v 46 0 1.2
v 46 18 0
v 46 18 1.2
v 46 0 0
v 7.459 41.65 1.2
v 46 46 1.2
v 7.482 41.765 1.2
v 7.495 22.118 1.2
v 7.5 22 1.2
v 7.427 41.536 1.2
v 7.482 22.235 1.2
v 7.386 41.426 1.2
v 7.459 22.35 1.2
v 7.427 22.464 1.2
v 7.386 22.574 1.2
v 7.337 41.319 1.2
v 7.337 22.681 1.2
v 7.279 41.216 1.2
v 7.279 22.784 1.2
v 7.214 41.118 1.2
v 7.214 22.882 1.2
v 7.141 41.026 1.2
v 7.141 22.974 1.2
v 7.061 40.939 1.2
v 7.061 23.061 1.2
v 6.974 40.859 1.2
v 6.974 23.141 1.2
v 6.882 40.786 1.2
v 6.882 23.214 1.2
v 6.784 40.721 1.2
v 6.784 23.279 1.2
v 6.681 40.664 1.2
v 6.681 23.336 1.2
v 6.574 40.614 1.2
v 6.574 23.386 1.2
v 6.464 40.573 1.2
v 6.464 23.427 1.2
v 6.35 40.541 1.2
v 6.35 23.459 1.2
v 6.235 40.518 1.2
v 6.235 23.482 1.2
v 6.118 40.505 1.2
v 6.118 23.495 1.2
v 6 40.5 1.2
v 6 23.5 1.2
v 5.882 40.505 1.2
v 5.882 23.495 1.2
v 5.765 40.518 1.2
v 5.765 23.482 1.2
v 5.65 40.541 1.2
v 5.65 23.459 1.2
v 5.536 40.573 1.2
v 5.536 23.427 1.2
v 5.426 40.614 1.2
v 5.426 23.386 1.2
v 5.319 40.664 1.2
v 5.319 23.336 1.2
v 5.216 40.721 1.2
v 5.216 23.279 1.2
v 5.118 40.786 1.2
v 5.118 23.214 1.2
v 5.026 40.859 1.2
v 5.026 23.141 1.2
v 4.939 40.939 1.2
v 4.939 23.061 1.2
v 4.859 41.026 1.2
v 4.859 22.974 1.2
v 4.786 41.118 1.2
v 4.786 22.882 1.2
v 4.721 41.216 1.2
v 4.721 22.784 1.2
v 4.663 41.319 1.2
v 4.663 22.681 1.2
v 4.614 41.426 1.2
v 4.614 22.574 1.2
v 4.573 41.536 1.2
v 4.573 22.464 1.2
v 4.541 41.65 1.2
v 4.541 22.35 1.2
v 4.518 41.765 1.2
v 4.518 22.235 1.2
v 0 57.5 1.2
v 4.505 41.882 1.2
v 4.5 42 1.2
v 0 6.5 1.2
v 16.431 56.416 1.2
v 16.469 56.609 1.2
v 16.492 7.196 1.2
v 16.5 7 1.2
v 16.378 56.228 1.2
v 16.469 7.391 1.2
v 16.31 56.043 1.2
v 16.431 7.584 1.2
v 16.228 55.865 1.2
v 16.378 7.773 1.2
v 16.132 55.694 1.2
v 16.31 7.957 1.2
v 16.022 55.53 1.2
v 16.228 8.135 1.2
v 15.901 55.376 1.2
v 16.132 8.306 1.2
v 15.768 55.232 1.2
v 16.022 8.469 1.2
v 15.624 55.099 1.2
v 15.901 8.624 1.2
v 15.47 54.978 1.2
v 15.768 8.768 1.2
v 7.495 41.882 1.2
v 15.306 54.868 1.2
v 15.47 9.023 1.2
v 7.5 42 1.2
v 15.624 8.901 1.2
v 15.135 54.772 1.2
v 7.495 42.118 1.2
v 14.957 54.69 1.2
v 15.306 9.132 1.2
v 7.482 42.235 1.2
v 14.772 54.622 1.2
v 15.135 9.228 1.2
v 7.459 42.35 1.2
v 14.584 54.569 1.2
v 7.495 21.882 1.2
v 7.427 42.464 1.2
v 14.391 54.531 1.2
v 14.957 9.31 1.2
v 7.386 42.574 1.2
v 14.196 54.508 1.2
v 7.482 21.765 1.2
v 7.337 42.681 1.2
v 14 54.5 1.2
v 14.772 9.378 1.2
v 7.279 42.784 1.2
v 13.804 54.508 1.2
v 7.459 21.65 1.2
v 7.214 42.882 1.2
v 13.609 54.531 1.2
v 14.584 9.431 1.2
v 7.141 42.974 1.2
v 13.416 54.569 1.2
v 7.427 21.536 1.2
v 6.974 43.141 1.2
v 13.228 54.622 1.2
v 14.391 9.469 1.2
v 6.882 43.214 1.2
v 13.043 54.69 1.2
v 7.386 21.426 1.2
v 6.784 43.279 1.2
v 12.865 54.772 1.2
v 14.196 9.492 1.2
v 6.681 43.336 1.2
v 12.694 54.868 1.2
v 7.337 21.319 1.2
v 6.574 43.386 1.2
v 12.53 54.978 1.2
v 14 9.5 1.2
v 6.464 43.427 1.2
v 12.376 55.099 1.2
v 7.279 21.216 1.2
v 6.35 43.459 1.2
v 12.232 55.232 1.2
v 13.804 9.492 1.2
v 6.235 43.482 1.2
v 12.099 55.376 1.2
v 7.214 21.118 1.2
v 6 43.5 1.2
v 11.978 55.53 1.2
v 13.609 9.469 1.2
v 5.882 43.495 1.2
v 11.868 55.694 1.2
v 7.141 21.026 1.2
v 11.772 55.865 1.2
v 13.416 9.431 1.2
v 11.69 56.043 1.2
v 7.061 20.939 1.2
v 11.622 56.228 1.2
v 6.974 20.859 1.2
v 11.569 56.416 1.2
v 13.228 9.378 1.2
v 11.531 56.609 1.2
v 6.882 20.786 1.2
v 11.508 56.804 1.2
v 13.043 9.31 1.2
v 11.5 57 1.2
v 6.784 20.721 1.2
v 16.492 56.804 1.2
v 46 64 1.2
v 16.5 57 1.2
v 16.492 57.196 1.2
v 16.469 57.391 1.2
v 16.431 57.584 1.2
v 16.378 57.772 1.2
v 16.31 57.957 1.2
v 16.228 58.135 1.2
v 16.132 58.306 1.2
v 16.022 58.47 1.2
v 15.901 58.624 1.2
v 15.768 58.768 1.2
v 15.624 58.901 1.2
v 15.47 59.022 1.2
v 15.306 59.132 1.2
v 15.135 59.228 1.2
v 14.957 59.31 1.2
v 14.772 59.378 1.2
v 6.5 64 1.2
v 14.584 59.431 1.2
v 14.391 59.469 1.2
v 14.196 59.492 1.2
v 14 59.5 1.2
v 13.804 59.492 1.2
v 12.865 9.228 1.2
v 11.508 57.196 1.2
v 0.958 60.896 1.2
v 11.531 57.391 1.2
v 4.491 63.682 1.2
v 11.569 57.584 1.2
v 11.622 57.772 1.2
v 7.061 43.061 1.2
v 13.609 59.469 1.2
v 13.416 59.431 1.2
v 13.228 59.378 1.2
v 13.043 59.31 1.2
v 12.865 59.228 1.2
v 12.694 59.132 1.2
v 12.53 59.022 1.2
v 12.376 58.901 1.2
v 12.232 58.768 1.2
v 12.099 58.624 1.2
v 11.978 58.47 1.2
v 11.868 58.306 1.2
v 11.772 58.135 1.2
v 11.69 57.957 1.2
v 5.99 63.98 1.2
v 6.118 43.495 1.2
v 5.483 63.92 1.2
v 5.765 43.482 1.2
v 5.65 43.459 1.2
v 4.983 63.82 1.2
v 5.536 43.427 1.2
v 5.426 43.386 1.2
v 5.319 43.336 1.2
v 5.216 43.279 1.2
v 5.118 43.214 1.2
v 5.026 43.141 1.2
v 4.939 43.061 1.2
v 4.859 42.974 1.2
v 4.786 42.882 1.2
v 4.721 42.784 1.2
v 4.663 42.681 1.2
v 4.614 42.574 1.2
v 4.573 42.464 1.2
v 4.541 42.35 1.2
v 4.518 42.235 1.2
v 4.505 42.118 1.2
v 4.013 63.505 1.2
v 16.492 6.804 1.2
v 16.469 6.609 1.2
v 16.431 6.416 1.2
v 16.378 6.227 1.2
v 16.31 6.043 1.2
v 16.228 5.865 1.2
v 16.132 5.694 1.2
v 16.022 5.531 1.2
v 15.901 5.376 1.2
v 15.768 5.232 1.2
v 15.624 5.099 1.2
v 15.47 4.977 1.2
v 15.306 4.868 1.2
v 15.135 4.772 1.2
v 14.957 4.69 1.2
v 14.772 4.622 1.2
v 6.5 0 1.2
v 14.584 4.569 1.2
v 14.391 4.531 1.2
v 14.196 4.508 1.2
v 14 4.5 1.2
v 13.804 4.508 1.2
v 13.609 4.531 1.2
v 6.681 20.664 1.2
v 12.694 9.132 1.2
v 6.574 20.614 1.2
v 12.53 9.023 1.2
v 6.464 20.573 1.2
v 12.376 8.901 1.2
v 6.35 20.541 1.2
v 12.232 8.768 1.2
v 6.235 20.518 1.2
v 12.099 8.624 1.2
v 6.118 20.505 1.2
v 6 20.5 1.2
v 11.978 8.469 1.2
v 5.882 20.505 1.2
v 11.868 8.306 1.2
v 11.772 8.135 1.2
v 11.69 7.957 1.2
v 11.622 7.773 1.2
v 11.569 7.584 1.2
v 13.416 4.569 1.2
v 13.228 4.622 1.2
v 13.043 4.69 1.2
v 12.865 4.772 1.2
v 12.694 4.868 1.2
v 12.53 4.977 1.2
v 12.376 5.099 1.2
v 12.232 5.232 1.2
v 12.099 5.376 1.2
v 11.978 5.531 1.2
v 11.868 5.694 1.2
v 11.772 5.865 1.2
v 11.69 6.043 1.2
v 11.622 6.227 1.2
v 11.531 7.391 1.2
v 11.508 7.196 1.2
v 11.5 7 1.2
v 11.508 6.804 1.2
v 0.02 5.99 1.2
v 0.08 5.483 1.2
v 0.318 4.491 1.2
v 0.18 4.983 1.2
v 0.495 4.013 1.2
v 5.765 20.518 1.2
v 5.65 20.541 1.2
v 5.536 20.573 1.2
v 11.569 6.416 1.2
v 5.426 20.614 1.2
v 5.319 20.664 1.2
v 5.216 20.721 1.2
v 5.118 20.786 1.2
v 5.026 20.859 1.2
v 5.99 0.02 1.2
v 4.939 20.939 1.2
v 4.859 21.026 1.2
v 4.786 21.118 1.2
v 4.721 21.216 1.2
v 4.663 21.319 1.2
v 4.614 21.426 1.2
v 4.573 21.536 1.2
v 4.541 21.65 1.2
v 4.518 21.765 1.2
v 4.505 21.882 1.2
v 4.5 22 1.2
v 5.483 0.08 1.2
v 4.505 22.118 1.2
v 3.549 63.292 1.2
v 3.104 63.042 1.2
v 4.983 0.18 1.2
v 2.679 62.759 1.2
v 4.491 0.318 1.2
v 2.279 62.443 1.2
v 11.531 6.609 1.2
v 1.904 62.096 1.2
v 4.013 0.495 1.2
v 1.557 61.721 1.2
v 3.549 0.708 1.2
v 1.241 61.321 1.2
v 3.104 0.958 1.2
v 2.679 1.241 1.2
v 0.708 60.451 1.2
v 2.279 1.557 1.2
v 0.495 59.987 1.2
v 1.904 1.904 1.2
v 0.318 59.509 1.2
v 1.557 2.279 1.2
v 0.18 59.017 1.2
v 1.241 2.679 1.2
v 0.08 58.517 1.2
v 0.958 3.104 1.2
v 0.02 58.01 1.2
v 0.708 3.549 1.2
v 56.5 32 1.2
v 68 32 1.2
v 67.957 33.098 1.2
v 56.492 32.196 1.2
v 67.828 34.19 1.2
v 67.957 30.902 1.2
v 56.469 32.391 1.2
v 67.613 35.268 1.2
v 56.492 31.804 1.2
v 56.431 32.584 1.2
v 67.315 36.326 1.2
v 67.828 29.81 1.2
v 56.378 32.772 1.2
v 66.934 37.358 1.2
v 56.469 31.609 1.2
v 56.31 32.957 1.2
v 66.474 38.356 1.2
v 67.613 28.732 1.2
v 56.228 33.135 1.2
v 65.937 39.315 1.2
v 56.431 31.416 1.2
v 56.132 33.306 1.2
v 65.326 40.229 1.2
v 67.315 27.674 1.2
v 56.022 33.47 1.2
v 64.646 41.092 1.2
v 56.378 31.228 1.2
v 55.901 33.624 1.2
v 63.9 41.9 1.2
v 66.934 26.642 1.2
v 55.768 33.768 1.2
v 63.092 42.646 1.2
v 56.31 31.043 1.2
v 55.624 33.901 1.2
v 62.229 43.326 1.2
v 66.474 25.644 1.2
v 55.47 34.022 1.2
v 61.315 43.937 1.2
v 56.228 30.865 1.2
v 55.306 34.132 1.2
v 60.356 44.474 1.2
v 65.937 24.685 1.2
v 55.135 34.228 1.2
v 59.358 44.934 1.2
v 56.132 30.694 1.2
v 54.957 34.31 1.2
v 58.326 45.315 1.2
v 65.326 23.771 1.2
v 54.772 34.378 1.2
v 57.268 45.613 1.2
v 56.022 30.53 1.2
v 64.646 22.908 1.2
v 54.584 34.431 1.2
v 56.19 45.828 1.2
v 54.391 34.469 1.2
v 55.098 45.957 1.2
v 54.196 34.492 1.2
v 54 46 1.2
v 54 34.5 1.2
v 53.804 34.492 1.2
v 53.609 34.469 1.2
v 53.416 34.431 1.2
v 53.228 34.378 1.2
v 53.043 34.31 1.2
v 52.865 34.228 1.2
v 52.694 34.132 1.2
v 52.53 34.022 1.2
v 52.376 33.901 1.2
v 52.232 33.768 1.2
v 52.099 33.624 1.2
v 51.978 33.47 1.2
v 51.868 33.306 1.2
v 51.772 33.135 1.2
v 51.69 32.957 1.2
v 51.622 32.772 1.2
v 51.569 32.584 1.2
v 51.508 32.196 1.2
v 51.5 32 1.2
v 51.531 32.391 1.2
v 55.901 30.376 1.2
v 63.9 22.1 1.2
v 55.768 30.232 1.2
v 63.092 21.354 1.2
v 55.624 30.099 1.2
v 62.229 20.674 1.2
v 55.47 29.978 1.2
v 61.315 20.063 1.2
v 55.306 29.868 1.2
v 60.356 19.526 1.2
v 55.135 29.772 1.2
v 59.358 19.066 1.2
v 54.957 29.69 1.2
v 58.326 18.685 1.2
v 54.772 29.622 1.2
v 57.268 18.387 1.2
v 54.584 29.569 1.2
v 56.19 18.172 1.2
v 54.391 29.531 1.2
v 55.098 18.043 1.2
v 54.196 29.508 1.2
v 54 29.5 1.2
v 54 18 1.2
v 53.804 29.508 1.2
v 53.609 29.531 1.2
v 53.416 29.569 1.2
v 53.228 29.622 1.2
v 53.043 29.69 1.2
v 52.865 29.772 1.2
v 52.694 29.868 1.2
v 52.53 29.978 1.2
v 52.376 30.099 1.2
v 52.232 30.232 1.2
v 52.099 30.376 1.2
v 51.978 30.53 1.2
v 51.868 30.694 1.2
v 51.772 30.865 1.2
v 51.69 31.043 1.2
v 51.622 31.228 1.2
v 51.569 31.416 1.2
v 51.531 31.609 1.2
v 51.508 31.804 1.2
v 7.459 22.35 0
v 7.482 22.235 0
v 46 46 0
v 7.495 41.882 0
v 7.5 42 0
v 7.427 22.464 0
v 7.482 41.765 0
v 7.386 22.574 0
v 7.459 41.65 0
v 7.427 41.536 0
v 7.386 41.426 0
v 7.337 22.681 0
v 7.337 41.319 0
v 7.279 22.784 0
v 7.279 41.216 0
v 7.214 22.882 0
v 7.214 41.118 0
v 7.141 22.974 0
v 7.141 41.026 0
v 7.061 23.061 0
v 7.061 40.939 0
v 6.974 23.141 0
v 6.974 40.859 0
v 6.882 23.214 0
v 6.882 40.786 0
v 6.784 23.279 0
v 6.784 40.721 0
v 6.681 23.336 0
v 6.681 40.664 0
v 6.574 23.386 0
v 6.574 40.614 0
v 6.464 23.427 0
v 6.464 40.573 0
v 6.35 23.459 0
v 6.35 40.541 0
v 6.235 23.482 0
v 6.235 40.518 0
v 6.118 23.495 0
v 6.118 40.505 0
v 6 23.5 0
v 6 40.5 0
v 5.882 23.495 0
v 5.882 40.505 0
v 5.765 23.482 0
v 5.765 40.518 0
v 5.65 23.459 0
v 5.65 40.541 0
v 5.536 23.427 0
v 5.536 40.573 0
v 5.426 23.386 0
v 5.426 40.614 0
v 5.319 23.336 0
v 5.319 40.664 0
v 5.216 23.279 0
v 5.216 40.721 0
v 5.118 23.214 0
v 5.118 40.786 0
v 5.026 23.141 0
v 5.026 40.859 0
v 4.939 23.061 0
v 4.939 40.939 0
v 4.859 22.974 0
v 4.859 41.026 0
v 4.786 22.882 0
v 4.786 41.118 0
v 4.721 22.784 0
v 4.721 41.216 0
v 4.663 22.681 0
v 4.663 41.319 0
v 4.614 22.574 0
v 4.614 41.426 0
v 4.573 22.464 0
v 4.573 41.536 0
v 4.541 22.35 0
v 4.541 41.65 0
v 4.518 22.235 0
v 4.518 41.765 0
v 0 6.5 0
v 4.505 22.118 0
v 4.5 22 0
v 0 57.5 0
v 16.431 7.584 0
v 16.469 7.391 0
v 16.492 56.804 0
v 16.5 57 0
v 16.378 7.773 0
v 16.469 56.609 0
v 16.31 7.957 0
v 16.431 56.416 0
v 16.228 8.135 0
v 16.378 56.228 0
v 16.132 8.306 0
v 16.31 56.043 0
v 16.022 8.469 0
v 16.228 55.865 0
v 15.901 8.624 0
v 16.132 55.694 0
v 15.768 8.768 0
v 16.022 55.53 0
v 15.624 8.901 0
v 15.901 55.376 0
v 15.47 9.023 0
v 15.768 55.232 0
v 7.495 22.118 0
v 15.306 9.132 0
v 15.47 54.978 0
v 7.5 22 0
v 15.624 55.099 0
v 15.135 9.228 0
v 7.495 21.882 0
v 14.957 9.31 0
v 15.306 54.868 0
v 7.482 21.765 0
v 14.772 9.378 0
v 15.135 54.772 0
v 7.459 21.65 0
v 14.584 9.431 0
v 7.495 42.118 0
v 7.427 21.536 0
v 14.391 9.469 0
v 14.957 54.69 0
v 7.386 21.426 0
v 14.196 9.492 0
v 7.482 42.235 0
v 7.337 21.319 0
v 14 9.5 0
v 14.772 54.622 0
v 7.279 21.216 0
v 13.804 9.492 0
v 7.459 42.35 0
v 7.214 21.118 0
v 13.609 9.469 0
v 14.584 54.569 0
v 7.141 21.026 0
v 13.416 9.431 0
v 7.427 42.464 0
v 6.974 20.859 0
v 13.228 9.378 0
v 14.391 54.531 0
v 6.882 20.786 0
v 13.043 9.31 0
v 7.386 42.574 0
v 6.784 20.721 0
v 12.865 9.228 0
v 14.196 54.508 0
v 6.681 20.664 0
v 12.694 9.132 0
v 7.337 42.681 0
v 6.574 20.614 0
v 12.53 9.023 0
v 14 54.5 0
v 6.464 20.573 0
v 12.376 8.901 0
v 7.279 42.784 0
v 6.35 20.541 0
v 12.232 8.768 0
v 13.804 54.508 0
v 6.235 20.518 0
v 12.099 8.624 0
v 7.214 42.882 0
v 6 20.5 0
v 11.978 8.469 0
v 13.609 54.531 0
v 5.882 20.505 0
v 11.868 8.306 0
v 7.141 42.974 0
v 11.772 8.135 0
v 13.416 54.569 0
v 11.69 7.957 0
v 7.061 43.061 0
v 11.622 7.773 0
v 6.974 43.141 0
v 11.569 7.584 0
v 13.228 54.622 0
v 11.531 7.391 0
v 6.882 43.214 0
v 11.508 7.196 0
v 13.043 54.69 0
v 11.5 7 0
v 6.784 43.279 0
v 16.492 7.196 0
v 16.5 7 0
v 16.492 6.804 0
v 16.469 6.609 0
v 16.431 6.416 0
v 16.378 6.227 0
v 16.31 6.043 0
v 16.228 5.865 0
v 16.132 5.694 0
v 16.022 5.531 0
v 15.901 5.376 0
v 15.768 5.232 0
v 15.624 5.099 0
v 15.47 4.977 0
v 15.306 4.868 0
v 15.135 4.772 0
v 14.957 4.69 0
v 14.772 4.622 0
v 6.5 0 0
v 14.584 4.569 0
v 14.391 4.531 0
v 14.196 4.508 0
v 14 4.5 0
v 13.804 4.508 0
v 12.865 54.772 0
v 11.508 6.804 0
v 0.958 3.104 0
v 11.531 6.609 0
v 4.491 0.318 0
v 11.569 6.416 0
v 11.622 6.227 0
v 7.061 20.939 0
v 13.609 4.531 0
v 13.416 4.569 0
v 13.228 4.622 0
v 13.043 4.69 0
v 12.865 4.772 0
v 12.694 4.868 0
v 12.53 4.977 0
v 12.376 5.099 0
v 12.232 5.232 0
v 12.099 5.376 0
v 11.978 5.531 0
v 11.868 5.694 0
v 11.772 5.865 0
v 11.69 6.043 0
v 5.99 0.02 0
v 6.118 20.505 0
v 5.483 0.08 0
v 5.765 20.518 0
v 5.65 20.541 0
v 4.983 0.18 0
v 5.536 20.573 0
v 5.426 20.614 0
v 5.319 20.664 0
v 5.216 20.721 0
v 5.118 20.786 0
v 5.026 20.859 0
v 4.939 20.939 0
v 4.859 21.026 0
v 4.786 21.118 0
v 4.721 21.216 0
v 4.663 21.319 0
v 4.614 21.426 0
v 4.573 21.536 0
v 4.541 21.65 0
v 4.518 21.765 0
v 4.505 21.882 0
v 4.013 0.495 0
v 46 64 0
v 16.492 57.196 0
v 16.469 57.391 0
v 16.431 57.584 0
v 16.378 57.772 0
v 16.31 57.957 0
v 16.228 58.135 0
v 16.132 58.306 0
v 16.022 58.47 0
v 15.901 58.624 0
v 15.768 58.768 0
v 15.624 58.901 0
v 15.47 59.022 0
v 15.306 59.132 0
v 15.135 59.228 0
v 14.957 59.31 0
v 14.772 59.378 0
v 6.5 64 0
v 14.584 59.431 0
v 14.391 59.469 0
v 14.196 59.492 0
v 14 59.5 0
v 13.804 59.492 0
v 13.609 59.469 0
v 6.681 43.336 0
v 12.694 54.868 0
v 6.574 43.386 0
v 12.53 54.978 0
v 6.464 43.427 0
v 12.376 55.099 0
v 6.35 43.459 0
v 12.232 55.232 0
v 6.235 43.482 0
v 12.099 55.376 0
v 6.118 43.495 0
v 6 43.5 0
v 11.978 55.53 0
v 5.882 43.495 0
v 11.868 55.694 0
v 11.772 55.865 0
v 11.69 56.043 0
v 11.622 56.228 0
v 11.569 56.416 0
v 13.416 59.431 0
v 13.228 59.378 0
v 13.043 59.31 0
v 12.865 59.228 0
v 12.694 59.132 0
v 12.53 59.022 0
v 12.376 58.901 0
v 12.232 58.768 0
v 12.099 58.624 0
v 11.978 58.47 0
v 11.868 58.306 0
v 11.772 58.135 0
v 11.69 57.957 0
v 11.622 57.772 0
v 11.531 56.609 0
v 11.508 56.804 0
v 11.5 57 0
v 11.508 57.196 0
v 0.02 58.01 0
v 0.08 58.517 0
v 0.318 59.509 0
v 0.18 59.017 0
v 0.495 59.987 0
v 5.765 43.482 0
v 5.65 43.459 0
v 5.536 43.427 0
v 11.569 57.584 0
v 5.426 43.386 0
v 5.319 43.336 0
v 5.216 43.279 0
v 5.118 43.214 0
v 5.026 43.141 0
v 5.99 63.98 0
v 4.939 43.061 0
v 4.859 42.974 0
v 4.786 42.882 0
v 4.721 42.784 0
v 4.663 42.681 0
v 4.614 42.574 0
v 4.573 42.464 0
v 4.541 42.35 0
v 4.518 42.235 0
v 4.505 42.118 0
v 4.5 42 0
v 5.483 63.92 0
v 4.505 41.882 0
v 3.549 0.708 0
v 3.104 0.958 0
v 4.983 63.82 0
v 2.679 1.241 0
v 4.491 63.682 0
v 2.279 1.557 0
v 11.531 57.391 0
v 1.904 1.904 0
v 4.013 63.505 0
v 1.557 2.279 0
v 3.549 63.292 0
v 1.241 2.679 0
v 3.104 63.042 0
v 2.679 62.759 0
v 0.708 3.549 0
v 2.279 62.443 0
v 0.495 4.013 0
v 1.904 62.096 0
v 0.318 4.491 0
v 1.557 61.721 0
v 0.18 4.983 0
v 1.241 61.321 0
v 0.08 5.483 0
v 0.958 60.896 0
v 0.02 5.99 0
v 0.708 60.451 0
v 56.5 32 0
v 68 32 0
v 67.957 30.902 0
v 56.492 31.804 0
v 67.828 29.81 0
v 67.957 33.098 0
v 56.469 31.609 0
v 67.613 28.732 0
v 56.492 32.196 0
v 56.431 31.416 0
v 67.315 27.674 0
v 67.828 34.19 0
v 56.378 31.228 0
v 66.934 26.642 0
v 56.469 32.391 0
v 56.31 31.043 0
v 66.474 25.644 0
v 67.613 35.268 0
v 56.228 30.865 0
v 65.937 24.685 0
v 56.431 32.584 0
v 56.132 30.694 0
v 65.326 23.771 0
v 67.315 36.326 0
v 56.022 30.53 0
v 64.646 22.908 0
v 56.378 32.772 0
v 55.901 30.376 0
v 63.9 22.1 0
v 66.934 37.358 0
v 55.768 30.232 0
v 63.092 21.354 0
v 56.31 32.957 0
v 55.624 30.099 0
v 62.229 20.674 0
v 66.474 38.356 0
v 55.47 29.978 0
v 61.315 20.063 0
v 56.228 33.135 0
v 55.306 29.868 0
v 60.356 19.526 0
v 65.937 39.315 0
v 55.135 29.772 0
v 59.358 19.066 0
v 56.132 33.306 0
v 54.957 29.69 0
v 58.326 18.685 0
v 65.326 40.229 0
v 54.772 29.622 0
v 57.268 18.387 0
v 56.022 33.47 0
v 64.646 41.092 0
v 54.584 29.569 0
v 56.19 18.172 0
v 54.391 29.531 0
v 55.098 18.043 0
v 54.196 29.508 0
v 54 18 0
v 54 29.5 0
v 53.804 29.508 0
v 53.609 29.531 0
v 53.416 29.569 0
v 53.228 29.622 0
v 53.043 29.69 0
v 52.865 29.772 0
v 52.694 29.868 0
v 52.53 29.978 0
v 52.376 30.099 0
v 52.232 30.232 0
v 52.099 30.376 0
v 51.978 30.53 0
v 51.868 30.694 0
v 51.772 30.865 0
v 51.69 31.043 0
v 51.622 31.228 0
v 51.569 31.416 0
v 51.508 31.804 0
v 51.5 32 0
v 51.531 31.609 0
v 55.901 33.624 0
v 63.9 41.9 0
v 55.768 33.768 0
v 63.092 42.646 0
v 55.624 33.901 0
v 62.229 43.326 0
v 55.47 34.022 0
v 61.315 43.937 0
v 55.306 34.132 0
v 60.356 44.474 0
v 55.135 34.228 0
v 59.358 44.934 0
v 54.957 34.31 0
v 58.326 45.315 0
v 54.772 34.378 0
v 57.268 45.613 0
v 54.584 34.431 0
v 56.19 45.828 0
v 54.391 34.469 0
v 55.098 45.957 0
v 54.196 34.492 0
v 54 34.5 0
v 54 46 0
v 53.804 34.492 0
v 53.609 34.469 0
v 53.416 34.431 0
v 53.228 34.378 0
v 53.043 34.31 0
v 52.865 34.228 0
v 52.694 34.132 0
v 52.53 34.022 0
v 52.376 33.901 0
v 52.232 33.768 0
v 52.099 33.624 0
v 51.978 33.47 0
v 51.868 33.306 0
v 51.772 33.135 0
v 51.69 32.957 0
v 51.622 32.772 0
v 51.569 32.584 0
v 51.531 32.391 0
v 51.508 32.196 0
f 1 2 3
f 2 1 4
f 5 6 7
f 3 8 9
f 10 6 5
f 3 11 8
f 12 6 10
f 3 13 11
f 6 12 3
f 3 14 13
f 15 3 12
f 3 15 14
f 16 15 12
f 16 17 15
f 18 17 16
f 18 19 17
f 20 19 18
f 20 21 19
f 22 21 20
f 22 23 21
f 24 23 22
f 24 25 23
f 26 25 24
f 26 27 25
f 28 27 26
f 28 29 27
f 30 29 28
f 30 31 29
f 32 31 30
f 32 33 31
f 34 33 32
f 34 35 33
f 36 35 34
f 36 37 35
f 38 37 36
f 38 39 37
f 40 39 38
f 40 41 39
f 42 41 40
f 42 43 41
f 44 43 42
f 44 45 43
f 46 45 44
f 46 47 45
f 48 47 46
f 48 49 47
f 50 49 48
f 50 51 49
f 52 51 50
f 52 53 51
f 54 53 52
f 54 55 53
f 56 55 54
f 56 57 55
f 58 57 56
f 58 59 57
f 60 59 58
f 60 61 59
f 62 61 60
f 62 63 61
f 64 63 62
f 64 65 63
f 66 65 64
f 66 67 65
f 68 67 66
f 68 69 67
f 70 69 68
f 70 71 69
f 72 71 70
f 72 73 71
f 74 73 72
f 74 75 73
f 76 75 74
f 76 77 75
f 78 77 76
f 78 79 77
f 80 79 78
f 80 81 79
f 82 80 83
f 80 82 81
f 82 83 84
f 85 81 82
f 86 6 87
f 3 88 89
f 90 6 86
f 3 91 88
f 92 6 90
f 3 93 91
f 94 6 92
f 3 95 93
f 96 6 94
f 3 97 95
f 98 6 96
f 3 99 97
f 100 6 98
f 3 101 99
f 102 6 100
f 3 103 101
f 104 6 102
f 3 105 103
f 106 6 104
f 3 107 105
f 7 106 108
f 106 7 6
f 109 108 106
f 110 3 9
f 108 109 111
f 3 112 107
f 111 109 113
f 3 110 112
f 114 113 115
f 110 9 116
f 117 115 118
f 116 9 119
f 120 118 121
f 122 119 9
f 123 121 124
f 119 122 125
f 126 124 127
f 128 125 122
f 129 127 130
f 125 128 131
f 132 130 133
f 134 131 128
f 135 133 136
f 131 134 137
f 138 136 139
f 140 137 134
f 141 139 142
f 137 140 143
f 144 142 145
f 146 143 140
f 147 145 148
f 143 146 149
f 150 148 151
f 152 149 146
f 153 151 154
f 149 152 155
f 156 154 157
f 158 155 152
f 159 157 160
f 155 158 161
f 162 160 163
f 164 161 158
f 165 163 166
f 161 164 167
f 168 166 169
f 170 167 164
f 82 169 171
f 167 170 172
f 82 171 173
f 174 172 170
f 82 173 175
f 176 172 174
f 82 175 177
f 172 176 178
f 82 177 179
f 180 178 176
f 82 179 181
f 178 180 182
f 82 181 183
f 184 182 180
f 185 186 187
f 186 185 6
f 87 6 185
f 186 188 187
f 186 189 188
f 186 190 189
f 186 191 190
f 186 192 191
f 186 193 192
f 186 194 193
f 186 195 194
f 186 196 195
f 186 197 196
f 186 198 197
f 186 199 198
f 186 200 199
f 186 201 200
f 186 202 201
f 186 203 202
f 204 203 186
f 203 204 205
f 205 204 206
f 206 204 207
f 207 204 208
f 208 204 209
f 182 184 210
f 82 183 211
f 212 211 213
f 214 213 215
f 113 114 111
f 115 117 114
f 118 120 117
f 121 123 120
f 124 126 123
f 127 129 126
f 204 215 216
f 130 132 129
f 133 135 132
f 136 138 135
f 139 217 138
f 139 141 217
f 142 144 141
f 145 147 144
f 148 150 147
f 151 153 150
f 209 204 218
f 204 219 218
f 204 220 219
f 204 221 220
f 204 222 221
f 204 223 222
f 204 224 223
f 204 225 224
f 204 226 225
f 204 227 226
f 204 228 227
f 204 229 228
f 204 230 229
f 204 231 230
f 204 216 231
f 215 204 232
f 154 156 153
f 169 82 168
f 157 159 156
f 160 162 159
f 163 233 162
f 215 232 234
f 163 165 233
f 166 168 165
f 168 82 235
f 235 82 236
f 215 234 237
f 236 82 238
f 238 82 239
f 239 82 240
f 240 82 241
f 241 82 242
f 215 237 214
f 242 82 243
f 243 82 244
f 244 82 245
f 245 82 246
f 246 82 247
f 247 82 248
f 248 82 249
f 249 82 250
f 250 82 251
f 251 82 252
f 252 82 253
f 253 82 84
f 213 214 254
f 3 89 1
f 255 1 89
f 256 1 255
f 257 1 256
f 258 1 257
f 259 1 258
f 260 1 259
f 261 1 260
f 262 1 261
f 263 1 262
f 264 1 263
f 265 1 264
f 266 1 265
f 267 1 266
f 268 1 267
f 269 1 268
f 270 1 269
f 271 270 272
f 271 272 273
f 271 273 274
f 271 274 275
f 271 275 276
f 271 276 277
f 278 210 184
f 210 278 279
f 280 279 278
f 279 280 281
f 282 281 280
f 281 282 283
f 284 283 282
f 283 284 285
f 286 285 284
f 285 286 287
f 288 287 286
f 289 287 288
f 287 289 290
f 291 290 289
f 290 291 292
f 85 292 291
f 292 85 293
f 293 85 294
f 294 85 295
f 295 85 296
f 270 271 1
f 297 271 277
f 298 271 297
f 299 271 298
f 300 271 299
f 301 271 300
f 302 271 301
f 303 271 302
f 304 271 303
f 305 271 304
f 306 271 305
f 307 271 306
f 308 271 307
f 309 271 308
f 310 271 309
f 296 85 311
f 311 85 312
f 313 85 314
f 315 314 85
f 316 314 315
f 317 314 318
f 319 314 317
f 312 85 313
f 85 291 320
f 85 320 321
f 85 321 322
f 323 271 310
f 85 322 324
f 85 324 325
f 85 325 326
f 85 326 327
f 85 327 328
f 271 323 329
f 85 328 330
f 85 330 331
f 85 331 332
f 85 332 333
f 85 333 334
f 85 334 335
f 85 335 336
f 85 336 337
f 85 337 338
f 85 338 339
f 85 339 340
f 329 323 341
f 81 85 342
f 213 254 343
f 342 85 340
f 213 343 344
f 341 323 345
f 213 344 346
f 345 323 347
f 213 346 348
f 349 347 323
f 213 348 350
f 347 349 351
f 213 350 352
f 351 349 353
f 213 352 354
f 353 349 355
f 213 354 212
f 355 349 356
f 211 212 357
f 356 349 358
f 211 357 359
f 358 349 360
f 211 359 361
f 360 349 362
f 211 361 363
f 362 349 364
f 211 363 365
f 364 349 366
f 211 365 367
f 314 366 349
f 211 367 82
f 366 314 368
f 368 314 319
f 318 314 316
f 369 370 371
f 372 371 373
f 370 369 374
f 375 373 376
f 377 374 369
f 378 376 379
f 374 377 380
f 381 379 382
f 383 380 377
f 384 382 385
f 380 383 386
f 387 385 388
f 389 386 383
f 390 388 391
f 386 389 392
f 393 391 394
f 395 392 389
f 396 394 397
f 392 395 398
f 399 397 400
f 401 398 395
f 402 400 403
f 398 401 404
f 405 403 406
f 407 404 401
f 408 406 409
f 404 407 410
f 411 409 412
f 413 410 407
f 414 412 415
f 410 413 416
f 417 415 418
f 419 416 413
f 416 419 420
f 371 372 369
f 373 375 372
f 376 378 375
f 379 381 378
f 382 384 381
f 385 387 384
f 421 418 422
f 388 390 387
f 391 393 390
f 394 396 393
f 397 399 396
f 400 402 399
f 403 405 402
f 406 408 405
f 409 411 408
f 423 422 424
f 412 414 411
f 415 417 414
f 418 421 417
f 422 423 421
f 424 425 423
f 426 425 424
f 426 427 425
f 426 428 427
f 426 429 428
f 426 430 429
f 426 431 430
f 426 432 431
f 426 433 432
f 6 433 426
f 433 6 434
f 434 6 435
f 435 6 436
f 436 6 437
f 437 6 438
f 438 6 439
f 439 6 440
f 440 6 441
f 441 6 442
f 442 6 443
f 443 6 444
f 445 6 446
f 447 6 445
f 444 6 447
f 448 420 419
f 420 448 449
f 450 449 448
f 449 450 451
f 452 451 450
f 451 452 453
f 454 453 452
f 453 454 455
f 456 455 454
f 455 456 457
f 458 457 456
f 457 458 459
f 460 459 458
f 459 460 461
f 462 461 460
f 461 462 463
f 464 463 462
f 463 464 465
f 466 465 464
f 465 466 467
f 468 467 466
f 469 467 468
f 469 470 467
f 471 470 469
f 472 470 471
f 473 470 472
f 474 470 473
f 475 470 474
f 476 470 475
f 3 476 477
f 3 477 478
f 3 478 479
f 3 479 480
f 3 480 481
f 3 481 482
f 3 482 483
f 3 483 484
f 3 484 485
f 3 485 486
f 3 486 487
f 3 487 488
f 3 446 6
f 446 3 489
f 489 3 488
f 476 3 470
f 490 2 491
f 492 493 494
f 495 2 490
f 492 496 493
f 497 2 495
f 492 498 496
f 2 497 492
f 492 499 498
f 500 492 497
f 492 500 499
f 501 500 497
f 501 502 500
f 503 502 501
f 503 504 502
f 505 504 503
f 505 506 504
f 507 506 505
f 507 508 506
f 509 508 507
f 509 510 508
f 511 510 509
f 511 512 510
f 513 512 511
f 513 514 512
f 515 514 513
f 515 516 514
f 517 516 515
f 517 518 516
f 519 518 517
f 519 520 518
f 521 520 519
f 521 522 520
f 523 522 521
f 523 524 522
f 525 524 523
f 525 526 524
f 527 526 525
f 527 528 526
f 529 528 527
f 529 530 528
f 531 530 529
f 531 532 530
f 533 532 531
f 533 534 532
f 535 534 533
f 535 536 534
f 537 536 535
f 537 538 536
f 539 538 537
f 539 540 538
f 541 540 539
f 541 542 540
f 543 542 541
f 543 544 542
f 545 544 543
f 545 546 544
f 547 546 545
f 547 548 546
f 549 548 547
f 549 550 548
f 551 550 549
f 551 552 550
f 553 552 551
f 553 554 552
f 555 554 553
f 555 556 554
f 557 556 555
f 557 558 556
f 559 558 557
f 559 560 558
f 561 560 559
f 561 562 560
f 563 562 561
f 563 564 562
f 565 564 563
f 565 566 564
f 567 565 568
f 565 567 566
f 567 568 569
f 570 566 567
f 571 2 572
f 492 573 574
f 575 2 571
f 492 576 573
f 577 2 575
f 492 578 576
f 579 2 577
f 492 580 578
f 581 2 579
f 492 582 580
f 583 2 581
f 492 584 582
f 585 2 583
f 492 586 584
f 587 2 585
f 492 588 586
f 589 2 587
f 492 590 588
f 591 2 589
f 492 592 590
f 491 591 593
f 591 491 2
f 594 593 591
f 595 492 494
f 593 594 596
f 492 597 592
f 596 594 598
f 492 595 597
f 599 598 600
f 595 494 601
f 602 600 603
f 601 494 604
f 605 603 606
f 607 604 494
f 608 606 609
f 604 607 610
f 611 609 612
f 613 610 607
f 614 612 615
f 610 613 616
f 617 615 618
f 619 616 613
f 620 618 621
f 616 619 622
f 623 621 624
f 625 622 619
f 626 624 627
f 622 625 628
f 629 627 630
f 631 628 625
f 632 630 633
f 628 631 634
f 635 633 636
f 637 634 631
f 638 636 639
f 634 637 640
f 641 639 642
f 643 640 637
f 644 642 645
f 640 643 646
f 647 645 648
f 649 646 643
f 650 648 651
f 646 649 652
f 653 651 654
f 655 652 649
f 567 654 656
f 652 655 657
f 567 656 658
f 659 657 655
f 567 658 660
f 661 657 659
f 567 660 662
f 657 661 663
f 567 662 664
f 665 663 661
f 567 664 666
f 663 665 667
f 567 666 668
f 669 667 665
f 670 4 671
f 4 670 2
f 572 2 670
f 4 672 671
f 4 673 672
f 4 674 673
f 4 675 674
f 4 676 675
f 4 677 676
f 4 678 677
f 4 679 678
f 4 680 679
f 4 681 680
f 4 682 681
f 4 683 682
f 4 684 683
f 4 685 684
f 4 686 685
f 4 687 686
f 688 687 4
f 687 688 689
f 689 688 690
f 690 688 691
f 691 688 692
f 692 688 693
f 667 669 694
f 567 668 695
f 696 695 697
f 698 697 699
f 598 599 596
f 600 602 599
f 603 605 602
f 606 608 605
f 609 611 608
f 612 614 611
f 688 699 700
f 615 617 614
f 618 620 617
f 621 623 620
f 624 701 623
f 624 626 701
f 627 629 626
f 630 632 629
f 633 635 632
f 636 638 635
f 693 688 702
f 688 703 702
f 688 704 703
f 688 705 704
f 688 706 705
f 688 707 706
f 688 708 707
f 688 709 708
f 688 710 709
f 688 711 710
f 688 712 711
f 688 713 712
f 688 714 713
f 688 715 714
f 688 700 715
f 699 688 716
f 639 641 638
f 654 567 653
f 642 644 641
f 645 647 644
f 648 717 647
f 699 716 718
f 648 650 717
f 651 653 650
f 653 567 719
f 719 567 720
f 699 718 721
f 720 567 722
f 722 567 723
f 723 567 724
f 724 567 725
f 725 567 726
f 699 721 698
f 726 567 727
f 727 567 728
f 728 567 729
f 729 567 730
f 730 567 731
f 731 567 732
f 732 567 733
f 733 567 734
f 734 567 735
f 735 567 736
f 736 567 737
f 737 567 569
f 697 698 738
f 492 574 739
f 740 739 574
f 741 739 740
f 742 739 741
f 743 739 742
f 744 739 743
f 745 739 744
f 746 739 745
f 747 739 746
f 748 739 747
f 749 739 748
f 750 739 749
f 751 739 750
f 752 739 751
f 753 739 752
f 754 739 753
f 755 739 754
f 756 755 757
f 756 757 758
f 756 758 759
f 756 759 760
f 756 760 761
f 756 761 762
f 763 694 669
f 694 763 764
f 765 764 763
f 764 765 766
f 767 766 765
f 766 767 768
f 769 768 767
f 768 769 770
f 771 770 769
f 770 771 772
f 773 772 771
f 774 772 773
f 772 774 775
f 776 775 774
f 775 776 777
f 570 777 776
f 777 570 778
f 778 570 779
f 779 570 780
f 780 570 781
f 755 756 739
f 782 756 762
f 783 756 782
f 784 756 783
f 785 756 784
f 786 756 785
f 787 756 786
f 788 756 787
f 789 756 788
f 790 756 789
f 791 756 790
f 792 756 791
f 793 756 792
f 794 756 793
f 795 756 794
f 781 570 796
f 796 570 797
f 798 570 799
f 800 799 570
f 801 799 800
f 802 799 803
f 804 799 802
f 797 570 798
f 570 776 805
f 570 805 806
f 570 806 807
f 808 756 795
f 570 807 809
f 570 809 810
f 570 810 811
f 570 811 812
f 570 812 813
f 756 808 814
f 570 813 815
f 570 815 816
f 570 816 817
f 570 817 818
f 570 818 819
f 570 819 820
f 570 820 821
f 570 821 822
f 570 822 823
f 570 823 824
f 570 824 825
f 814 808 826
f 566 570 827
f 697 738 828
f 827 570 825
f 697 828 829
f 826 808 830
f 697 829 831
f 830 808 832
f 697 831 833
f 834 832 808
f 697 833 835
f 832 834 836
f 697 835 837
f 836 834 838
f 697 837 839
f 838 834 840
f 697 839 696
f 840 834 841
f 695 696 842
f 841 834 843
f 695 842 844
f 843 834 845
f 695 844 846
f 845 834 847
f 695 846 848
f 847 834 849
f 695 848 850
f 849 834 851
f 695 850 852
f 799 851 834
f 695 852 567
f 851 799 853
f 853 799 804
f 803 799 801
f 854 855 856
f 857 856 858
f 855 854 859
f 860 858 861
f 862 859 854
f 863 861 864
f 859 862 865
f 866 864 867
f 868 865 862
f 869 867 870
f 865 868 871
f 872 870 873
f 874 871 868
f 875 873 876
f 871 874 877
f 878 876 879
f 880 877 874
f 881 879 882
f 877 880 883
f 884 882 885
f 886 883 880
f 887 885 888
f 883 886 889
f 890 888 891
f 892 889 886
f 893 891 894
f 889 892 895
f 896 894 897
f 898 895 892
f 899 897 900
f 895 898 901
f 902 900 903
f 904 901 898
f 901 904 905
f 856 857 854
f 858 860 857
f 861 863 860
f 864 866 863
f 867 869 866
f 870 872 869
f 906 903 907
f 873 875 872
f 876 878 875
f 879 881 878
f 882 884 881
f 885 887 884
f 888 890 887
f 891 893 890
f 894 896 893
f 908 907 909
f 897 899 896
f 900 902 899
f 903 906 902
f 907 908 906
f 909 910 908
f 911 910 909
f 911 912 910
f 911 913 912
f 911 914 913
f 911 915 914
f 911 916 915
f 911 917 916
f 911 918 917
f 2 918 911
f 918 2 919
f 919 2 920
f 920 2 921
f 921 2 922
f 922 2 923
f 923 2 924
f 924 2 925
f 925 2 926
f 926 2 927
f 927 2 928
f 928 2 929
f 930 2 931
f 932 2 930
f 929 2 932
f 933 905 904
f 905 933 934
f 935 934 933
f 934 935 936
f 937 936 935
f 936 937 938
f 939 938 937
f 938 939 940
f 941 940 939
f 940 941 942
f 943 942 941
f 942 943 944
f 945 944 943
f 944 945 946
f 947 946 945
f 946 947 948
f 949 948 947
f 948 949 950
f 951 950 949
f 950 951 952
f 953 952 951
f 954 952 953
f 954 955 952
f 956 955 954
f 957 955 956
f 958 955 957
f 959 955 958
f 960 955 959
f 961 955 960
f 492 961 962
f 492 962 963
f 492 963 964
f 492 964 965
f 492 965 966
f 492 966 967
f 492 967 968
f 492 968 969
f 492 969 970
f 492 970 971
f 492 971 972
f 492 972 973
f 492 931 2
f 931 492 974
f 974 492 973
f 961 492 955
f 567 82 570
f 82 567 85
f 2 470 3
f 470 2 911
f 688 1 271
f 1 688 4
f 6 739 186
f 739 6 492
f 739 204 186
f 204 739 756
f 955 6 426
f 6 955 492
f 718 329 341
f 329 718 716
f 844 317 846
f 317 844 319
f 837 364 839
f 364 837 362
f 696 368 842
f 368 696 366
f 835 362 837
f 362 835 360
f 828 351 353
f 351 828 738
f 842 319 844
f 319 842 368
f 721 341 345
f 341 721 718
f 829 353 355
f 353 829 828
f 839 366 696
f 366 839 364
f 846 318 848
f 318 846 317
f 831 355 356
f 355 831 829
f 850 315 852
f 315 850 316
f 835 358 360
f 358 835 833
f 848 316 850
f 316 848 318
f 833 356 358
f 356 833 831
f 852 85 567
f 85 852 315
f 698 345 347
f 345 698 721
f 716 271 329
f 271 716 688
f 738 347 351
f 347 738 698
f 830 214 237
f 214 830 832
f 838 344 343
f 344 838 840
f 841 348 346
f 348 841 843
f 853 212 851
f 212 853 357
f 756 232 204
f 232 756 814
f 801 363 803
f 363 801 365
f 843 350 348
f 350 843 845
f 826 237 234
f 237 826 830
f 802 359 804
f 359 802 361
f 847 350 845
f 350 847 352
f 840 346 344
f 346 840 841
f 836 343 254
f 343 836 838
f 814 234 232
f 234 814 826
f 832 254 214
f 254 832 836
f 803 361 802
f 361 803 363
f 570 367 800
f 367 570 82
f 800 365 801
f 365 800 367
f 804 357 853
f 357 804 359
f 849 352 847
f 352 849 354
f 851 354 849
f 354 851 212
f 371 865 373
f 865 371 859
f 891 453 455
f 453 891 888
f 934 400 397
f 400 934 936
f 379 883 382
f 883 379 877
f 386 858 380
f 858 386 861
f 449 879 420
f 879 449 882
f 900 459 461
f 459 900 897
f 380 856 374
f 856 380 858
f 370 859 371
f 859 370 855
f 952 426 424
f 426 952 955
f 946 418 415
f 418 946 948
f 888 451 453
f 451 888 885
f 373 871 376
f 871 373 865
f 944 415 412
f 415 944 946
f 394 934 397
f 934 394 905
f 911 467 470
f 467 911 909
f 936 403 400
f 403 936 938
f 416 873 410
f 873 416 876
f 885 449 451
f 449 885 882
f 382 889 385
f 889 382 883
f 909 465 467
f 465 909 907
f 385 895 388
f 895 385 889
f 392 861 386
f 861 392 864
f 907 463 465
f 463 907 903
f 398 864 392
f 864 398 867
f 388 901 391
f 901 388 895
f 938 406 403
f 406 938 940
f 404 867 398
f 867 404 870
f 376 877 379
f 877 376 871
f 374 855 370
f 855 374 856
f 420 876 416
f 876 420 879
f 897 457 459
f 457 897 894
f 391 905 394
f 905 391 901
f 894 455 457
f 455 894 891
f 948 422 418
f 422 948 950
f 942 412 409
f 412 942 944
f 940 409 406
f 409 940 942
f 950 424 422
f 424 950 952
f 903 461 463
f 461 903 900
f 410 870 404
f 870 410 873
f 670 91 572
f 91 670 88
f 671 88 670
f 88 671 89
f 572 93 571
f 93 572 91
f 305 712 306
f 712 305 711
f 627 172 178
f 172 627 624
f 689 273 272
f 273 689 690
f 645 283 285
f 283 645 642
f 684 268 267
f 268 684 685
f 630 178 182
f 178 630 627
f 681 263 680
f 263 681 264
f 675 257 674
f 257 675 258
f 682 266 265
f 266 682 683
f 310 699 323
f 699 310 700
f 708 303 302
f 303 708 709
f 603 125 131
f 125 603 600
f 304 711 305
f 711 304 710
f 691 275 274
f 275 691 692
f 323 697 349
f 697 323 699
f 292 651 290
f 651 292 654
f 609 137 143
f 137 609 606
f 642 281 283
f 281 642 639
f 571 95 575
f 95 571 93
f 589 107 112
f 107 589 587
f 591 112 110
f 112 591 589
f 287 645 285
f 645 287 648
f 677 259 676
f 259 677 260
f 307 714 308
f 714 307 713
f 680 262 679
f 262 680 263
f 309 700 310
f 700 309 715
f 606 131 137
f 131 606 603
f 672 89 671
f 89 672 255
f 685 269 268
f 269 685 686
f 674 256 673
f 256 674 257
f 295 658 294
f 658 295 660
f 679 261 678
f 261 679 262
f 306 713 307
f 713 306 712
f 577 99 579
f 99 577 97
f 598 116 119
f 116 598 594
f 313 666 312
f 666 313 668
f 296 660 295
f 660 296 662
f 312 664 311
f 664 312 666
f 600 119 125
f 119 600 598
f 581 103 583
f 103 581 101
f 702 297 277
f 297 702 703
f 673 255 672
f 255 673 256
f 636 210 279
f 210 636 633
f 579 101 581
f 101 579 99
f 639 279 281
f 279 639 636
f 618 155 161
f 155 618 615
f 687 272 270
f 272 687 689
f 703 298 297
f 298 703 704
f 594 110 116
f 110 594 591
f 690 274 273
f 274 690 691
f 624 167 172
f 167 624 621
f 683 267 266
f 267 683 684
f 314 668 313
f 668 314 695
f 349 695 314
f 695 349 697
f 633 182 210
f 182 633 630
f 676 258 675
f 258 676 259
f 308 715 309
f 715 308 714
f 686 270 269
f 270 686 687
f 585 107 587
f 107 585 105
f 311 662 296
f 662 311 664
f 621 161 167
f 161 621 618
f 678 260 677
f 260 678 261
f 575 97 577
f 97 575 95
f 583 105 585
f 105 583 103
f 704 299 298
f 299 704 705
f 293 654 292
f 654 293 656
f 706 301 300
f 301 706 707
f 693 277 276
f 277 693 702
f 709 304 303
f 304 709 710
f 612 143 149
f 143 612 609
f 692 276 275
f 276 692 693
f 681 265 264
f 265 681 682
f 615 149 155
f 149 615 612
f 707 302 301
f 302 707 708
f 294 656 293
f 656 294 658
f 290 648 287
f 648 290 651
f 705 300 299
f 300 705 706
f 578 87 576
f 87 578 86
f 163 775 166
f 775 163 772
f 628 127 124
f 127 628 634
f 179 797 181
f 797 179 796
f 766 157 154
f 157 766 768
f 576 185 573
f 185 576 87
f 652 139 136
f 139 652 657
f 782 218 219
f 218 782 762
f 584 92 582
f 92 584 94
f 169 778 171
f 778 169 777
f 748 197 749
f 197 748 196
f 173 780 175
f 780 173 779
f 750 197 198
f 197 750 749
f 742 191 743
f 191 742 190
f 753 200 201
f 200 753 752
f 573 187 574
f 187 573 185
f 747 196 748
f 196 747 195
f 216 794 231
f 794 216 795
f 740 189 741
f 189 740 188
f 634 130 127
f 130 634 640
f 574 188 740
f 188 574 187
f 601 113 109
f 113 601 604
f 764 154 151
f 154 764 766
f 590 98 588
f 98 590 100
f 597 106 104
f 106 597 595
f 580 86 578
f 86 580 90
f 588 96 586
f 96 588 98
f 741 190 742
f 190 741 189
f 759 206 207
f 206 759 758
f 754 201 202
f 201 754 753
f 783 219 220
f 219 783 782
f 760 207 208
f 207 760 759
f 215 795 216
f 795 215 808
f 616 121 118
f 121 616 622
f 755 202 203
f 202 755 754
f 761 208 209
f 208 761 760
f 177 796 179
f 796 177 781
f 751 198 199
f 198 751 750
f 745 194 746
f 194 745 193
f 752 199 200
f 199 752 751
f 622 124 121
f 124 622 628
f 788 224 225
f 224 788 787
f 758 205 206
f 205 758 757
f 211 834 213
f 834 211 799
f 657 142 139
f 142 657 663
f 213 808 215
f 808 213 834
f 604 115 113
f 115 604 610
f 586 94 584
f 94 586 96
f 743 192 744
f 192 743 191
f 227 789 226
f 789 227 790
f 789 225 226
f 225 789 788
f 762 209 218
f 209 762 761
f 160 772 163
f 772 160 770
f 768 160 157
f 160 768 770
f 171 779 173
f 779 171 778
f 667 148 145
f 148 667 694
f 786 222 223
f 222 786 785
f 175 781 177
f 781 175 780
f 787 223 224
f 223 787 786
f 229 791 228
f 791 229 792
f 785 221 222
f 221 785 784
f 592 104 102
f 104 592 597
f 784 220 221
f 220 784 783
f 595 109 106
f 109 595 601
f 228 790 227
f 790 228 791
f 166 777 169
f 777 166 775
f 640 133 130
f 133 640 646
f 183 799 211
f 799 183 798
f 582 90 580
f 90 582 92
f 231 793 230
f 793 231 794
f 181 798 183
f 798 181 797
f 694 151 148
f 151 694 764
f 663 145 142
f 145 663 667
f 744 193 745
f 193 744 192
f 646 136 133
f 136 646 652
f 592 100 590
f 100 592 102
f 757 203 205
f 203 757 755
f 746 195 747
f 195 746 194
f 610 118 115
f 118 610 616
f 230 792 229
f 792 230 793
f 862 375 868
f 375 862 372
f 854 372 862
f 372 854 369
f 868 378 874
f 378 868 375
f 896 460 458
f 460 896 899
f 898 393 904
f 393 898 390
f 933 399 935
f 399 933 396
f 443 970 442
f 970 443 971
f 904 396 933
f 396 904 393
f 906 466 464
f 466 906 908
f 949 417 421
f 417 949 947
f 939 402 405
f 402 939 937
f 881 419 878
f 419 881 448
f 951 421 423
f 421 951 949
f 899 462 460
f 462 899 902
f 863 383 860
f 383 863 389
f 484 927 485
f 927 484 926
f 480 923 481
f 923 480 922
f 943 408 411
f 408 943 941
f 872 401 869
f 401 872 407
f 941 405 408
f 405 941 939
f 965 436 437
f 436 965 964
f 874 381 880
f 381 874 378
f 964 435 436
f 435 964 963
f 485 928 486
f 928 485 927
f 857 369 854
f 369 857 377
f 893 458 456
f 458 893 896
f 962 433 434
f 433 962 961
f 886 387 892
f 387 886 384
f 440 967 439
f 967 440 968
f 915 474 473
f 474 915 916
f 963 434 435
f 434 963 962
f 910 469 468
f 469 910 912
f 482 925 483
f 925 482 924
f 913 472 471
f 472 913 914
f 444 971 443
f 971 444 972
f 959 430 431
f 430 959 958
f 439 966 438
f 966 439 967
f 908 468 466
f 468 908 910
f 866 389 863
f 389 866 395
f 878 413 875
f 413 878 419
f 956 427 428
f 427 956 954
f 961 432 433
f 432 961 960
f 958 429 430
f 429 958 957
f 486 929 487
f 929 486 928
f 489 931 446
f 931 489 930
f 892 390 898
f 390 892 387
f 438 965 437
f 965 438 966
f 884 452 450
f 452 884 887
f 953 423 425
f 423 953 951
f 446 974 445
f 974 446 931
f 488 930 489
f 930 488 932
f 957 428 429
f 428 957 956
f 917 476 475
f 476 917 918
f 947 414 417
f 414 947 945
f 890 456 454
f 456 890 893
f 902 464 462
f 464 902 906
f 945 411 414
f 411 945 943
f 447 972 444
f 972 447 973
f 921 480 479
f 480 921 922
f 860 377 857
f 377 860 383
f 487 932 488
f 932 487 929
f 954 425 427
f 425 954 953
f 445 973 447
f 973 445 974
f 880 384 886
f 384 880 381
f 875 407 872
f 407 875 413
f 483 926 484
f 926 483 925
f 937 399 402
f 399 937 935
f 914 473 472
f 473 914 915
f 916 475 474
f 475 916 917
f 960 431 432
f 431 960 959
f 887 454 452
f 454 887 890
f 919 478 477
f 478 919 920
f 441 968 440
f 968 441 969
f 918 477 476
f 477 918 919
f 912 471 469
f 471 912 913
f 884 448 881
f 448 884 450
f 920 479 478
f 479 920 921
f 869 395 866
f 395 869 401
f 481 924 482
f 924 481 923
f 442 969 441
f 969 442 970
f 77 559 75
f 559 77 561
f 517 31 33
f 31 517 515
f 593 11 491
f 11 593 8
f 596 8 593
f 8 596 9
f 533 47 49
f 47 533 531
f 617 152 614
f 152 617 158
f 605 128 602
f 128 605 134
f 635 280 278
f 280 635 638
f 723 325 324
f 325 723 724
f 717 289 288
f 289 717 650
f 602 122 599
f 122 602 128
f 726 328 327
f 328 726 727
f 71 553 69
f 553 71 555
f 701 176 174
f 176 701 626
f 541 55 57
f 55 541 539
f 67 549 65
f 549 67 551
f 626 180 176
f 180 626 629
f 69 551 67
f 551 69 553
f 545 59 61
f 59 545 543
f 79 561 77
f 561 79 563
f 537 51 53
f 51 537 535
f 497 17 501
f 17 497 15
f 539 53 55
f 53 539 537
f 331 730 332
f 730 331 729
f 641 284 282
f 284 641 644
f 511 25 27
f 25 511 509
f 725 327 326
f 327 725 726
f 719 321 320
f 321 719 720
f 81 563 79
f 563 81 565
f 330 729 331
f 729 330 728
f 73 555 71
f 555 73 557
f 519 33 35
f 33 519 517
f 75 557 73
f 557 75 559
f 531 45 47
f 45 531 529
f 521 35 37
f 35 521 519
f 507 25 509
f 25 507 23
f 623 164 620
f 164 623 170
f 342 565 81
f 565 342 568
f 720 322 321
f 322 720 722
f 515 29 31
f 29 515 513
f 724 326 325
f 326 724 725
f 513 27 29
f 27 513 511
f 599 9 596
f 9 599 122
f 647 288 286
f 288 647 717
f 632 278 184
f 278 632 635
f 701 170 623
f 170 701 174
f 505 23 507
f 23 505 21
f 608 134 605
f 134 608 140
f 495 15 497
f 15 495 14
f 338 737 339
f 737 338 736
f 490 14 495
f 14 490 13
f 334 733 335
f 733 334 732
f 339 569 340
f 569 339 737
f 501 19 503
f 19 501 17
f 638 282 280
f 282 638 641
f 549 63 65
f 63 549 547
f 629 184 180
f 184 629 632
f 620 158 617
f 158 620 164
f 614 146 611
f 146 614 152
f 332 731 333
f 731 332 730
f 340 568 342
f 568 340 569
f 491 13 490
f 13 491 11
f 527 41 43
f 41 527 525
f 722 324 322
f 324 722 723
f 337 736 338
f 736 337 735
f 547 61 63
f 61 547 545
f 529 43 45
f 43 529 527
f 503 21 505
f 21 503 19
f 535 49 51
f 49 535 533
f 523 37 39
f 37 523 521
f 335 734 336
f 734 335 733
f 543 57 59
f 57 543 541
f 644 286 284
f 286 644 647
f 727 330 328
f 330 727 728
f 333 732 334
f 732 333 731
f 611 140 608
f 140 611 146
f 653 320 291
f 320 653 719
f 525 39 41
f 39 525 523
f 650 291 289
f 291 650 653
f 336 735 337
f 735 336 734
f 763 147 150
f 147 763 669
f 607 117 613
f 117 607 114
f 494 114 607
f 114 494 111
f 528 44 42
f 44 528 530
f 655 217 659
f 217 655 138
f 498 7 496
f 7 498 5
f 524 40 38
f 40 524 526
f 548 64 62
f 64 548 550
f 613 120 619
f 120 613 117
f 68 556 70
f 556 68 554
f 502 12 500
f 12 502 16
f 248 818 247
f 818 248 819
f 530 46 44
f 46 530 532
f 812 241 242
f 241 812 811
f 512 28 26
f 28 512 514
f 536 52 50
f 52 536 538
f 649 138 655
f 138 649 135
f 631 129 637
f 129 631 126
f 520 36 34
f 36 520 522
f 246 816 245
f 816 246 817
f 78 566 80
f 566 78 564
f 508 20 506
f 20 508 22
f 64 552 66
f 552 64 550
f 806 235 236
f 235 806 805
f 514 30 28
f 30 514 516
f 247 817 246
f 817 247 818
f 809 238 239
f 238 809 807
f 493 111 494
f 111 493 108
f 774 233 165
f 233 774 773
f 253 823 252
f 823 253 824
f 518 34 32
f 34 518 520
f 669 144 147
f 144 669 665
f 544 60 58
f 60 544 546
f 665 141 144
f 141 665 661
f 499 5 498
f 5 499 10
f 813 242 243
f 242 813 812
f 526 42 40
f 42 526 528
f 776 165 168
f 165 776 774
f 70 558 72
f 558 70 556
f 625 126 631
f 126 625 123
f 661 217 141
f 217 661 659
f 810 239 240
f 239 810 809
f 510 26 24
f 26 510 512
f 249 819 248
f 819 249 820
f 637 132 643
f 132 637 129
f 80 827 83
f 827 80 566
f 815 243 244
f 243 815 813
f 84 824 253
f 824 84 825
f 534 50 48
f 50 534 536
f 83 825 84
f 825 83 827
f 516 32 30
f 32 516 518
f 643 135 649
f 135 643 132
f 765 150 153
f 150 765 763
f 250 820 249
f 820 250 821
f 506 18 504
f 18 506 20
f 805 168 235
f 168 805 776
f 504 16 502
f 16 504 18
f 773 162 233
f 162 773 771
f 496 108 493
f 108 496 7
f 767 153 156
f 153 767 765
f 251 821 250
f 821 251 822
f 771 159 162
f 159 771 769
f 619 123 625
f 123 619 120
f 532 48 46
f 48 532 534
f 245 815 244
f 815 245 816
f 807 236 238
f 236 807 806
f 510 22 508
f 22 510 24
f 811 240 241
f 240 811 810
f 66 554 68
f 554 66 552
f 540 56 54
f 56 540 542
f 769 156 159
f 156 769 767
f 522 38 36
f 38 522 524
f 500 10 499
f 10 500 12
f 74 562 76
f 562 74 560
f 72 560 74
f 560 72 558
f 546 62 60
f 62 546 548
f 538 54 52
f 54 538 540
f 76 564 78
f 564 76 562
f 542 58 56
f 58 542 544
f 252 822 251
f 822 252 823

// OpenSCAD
$fn = 80;

z = 1.2; // this is the only input here, everything else is as measured

// base Plate parameters
outerPlate = [68,64,z];
shoulderRadius = 6.5;
subtractSideLengthY = 18;
subtractSideLengthX = 22;
bottomRoundRadius = 14;

// bolt and screw parameters, top right bolt is datum
topNutYDistance = 50;
botNutXGap = 40;
topScrewYGap = 20;

//originally 10 then 9 then 7 then 8; x distance between the pair of hex screws and pair of hex bolts
topScrewBoltXGap = 8; 
topScrewYOffset = 15;
screwDia = 3;
boltDia= 5;

// note that the datum for mounting holes is the top left nut (bigger hole)

// this is the correct value for the edge x offset of the small screws up top
topScrewEdgeXOffset = 6; // x distance from the top of the mounting plate to the pair of hex screws

// this is already the correct value for the distance of the datum bolt from the top of the plate
// nope this is not the correct value
//topBoltXOffset = 15;
topBoltXOffset = topScrewBoltXGap + topScrewEdgeXOffset;
echo(topBoltXOffset);

// y distance from the left side of the mounting plate to the pair of nuts on top
topNutEdgeYOffset = 7; 

module mountBaseplate(z=z) {

    module basePlate(z=z) {
        // left side
        difference() {
            cube([outerPlate[0]-subtractSideLengthX, subtractSideLengthY, z]);
            cube([shoulderRadius,shoulderRadius,z]);
        };
        translate([shoulderRadius, shoulderRadius, 0]) cylinder(r=shoulderRadius, h=z);
        // right side
        translate([0, subtractSideLengthY+2*bottomRoundRadius,0])
        difference() {
            cube([outerPlate[0]-subtractSideLengthX, subtractSideLengthY, z]);
            translate([0, subtractSideLengthY-shoulderRadius, 0])
                cube([shoulderRadius,shoulderRadius,z]);
        };
        translate([shoulderRadius, outerPlate[1]-shoulderRadius,0]) cylinder(r=shoulderRadius, h=z);
        translate([0, subtractSideLengthY, 0])
            cube([outerPlate[0]-bottomRoundRadius, 2*bottomRoundRadius, z]);
        // rounded bottom
        translate([outerPlate[0]-bottomRoundRadius, outerPlate[1]/2, 0])
            cylinder(r=bottomRoundRadius, h=z);
    } //basePlate();

    module holeAssembly(rs=screwDia/2, rb=boltDia/2, h=z) {
        // datum bolt (the top left big circle)
        cylinder(r=rb, h=h);
        // top left bolt
        translate([0, topNutYDistance, 0])
            cylinder(r=rb, h=h);
        // top right bolt
        translate([botNutXGap, topNutYDistance/2, 0])
            cylinder(r=rb, h=h); 
        // bottom bolt
        translate([botNutXGap, topNutYDistance/2, 0])
            cylinder(r=rb, h=h); 
        // top left screw hole
        translate([-topScrewBoltXGap, topScrewYOffset, 0])
            cylinder(r=rs, h=h); 
        // top right screw hole
        translate([-topScrewBoltXGap, topScrewYOffset+topScrewYGap, 0])
            cylinder(r=rs, h=h); 
    } //holeAssembly();

    difference() {
        basePlate(z=z);
        translate([topBoltXOffset, topNutEdgeYOffset, 0])
            holeAssembly();
    };
}; mountBaseplate(z=1.2);
